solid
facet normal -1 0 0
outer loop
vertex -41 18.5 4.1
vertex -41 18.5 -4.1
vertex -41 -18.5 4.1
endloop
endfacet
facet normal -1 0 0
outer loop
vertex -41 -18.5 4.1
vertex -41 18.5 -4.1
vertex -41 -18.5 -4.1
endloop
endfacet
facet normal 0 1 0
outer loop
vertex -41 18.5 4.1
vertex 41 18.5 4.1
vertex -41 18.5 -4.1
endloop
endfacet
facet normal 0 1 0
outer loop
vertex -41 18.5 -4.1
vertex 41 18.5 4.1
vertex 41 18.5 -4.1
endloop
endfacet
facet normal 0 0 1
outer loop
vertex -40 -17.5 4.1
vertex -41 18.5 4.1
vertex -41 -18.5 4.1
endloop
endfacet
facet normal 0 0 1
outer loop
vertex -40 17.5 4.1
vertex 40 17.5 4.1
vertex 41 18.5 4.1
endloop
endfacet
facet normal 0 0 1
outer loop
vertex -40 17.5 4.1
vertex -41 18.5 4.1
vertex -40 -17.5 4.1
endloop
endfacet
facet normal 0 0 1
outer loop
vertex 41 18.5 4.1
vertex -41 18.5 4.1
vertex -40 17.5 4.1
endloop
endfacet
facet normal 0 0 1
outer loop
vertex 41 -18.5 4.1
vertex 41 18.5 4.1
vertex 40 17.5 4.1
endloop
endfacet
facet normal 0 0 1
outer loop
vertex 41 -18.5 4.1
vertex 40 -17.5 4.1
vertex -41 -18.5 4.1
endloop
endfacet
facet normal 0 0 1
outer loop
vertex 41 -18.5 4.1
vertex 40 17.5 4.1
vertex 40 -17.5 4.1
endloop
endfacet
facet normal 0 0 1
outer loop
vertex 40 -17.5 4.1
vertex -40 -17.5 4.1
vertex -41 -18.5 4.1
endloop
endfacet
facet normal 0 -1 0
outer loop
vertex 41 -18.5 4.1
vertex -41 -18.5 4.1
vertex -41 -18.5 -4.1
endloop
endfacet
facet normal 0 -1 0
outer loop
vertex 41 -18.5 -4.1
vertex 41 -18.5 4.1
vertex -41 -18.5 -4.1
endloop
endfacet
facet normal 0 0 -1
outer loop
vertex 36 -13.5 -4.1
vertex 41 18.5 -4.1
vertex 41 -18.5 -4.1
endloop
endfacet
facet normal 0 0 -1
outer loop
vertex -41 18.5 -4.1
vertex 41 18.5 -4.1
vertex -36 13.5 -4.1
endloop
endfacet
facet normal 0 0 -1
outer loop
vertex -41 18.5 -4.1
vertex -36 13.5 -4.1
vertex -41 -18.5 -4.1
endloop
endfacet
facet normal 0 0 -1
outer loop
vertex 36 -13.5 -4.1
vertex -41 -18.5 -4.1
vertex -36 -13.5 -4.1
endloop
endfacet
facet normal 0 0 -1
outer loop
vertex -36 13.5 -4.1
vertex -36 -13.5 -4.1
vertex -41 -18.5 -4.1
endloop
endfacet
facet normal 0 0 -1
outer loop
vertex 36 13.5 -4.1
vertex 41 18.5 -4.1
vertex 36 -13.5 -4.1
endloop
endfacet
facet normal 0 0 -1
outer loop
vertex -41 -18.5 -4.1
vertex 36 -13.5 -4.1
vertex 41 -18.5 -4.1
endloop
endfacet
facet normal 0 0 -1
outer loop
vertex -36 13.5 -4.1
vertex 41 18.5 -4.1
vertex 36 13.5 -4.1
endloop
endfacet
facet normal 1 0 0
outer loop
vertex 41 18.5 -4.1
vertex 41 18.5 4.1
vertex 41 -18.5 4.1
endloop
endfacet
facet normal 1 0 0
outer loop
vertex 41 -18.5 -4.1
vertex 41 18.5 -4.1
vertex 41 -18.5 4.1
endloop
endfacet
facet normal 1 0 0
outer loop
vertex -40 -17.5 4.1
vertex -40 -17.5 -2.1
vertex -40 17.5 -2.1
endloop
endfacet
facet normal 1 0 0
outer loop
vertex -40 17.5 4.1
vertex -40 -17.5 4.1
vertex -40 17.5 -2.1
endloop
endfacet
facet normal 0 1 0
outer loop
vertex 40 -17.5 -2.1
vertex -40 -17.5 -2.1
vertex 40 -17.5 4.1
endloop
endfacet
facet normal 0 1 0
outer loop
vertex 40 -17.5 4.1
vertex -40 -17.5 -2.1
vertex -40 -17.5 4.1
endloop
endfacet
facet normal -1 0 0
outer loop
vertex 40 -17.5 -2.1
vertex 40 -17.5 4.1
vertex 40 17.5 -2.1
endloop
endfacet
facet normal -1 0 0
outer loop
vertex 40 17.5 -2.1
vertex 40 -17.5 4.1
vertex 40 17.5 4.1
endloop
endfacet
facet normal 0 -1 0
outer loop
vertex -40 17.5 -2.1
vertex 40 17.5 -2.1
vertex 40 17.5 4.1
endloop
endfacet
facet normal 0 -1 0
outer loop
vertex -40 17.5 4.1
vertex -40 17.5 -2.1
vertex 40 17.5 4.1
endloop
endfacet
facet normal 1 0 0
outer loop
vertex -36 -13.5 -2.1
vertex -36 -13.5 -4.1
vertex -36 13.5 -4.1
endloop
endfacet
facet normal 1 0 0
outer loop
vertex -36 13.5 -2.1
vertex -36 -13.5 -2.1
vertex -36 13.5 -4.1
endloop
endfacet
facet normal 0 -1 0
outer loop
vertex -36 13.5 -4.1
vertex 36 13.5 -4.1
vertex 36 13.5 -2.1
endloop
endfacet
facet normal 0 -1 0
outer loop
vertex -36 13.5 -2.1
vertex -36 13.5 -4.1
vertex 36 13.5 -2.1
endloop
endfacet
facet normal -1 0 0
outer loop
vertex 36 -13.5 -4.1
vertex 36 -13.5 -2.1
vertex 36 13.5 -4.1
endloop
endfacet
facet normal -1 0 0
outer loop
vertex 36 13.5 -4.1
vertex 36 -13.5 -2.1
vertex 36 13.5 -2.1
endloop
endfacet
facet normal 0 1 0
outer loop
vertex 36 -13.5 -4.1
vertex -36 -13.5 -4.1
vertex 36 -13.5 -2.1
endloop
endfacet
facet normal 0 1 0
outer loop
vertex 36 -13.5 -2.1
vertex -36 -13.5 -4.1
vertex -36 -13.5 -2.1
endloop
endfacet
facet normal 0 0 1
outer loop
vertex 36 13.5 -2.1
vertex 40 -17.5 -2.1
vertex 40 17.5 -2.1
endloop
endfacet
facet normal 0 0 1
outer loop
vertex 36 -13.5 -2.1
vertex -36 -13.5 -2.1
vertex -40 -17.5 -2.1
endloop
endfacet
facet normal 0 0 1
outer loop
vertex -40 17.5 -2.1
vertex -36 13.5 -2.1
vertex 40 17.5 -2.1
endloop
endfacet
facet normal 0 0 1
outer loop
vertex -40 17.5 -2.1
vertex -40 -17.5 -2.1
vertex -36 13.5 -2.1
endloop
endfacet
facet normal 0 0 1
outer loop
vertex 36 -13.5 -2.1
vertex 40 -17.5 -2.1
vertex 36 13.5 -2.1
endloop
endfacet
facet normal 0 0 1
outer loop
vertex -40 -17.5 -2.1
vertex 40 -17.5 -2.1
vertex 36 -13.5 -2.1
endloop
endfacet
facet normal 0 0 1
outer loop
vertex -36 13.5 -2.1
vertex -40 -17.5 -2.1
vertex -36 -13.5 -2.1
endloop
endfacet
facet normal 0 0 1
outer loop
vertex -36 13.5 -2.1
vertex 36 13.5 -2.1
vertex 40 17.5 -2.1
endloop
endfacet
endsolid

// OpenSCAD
module LcdCover(height = 8.2, wall = 2)
{
    length = 82;
    width = 37;
    holeLength = 72;
    holeWidth = 27;

    difference()
    {
        // Main shape
        cube([length, width, height], center=true);

        // Hollow out inside
        translate([0, 0, -wall])
        cube([length-wall, width-wall, height], center=true);

        // Cut hole for LCD
        cube([holeLength, holeWidth, height*2], center=true);
    }
}

rotate([180, 0, 0]) // Easier to print upside down
LcdCover();
